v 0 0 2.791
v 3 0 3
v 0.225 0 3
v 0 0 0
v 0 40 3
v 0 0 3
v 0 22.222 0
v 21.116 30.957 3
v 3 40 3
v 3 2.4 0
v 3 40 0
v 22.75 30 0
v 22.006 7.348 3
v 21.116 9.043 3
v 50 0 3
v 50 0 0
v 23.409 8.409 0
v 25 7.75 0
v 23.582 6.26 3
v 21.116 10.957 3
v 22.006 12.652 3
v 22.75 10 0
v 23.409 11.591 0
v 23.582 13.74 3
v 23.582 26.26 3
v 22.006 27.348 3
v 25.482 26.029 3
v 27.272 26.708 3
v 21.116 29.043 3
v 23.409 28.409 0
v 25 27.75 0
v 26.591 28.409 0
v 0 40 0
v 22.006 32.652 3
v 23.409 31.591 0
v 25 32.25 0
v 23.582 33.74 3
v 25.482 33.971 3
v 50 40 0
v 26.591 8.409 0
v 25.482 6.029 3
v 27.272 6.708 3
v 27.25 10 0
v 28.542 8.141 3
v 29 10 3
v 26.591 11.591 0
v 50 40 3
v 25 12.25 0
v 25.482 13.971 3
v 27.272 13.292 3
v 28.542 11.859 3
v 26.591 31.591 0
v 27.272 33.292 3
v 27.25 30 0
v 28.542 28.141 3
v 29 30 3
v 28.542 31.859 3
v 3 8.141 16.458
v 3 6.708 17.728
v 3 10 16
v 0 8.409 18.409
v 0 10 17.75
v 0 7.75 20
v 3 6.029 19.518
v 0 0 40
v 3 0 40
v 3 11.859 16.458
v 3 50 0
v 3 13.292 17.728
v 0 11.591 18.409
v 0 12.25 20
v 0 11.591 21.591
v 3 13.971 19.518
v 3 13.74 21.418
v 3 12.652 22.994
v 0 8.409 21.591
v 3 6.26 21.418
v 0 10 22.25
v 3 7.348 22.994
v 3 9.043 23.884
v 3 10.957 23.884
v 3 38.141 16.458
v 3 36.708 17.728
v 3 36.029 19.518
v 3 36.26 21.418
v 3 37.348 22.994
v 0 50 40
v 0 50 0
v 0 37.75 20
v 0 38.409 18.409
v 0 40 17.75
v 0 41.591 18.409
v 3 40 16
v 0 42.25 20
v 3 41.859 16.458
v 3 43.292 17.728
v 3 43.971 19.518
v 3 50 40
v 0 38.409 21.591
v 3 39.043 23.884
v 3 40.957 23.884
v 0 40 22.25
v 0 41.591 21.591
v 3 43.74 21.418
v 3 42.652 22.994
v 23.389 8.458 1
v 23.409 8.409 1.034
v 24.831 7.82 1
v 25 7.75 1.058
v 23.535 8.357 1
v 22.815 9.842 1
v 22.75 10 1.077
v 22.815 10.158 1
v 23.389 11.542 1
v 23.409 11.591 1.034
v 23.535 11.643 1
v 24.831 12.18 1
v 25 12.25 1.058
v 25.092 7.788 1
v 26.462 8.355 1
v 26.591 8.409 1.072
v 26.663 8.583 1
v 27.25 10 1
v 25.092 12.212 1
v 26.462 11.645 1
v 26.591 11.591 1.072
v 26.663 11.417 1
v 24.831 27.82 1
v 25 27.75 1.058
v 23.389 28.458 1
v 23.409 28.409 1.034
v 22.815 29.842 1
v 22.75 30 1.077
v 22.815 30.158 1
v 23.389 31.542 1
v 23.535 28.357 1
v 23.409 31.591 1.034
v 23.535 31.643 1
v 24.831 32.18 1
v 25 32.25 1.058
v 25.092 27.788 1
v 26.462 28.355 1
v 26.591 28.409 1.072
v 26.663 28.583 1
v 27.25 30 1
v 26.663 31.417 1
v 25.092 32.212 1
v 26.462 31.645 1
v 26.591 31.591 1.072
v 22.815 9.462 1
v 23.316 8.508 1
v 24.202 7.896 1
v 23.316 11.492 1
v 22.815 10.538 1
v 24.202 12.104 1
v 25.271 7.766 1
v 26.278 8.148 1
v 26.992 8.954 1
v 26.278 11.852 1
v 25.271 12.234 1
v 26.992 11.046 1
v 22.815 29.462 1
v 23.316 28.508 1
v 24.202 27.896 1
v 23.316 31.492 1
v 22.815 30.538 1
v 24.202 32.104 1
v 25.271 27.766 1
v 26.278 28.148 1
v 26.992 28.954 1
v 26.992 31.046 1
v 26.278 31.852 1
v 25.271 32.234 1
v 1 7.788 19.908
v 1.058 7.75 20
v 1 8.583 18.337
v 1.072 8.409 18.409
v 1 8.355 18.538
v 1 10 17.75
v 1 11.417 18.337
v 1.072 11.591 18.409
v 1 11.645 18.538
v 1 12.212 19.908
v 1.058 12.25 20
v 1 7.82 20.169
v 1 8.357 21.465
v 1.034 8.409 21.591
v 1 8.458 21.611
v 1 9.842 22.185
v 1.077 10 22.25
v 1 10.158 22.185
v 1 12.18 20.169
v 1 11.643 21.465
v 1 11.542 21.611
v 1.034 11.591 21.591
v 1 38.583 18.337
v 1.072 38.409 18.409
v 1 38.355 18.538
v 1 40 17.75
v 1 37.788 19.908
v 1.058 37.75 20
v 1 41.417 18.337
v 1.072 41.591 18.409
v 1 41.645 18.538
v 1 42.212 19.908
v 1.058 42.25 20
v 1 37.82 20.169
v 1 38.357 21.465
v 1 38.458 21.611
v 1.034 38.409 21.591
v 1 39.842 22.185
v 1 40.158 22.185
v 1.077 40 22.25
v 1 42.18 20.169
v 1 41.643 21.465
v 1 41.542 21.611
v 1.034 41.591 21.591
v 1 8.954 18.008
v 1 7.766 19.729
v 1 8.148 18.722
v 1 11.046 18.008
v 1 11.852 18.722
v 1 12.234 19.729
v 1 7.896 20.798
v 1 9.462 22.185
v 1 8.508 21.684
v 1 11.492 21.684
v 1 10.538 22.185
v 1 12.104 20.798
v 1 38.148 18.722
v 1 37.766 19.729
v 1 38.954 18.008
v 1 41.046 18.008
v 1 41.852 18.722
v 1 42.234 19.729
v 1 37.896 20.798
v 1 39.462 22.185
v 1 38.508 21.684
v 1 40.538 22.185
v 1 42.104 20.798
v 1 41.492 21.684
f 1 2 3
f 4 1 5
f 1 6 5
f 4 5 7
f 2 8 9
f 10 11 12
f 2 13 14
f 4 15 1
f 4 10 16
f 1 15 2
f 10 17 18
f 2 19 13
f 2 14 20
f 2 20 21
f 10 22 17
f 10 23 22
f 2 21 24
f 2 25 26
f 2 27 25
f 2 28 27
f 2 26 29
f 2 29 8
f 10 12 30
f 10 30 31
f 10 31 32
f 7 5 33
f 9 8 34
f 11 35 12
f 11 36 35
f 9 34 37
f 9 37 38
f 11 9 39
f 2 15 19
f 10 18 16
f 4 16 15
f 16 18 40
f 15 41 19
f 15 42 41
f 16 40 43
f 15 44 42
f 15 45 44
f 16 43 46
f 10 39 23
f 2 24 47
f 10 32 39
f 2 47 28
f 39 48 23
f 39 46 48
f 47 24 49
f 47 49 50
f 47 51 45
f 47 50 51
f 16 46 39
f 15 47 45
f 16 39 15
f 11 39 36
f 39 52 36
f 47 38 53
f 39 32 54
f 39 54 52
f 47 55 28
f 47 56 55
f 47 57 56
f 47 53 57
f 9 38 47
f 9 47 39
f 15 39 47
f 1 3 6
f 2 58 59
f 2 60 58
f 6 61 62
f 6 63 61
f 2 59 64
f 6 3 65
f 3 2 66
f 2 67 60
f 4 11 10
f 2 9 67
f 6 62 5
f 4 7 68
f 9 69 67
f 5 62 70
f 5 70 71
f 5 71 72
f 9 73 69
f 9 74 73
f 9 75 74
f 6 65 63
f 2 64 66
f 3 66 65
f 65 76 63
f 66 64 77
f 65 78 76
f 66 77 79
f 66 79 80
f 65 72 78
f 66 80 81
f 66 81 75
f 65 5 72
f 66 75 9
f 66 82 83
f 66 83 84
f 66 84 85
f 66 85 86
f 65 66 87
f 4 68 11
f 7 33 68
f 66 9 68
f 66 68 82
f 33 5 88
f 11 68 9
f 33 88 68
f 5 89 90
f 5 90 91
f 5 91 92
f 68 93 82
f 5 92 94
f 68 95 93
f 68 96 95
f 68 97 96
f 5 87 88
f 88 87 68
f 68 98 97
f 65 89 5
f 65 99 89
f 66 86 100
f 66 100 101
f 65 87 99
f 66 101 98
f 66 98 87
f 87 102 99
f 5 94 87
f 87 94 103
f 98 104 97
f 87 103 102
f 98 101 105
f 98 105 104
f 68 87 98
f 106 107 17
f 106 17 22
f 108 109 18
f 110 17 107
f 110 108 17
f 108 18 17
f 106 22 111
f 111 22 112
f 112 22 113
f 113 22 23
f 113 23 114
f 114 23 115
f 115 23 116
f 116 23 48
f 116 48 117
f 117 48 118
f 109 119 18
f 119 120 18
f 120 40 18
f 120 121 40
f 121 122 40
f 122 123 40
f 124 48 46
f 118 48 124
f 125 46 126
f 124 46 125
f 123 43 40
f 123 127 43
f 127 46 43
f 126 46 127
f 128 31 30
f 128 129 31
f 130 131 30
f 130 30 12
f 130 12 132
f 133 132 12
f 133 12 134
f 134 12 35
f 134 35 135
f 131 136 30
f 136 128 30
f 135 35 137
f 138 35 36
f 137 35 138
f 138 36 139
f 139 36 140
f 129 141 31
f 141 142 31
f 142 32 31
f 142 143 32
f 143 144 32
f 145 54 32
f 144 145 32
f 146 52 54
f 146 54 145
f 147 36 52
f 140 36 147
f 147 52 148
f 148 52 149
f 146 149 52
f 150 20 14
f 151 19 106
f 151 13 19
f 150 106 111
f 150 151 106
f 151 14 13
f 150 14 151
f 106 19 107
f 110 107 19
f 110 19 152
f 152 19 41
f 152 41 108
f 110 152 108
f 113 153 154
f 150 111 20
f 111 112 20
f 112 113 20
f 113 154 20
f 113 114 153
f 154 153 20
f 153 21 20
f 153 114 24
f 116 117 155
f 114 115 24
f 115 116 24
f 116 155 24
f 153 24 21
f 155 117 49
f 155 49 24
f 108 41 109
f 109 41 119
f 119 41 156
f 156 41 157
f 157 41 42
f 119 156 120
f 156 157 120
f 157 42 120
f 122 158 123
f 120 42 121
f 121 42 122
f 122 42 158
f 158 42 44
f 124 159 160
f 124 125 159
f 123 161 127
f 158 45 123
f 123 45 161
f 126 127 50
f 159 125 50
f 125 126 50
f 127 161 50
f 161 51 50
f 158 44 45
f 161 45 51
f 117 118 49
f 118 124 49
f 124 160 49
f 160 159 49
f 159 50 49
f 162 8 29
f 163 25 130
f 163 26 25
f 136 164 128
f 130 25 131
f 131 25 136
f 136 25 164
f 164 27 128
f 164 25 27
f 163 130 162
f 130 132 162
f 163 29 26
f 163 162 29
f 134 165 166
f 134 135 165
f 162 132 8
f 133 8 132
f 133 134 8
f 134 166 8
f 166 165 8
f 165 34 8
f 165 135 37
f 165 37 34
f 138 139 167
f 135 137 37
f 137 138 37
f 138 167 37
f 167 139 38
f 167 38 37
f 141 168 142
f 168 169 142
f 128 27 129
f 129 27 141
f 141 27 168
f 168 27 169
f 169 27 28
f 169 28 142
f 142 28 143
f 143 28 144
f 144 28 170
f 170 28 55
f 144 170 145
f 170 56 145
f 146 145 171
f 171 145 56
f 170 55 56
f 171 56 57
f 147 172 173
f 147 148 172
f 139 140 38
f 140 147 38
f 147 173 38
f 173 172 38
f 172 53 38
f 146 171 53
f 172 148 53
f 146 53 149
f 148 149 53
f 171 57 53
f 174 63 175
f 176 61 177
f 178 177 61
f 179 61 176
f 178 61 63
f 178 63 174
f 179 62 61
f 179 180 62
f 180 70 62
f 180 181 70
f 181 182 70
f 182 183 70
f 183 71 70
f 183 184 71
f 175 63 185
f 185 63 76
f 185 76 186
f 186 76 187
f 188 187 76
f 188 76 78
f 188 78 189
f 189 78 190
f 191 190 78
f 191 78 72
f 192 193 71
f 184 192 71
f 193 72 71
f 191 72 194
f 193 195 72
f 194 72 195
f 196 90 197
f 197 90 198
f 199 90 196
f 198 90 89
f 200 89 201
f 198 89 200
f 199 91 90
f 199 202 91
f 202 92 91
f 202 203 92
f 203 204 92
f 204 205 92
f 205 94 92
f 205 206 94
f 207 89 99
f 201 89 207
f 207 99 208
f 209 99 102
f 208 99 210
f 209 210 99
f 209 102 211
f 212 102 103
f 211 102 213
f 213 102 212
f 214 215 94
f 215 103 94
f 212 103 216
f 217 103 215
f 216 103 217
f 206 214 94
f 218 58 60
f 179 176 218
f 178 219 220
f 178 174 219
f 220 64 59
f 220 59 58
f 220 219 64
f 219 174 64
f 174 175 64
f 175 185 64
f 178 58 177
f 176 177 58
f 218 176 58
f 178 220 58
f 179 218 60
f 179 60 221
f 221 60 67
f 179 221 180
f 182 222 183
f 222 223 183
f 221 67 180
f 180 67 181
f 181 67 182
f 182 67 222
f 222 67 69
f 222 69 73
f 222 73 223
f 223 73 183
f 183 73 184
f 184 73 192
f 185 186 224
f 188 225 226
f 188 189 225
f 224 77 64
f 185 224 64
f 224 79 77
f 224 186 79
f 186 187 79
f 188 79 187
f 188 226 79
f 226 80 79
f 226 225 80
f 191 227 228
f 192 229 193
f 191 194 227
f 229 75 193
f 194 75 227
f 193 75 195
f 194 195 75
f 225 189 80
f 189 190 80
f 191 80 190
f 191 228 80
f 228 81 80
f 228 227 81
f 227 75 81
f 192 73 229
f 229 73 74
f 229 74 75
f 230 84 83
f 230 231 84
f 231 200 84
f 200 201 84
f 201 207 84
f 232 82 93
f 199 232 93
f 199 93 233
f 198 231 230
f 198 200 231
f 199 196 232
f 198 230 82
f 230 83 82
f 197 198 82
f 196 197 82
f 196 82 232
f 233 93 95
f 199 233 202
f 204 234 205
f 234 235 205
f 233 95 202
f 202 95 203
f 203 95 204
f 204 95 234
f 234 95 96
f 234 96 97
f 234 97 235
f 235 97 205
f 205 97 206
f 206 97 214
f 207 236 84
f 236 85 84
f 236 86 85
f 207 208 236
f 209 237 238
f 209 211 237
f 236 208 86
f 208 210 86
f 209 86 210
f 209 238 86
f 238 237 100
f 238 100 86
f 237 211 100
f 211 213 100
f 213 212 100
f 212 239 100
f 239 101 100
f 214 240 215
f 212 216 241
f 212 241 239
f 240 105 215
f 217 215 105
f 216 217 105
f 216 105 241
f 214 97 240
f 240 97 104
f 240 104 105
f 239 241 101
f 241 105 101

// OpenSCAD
// 修正 OpenSCAD: L字金具 (水平板 XY 平面, 垂直板 YZ 平面)、内側コーナー原点
// 内側コーナーを原点 (0,0,0) に配置
difference() {
  union() {
    // 水平板: 50 × 40 × 3 (X × Y × Z)
    cube([50, 40, 3], center=false);

    // 垂直板: 3 × 50 × 40 (X × Y × Z)
    cube([3, 50, 40], center=false);
  }

  // 水平板の貫通穴 (Z 軸方向)
  translate([25, 10, 0])
    cylinder(h=3, r=2.25, center=false);
  translate([25, 30, 0])
    cylinder(h=3, r=2.25, center=false);

  // 水平穴の皿座面 (外側へ向ける: 上面 z=3 側)
  translate([25, 10, 1])
    cylinder(h=2, r1=2.25, r2=4, center=false);
  translate([25, 30, 1])
    cylinder(h=2, r1=2.25, r2=4, center=false);

  // 垂直板の貫通穴 (X 方向に貫通)
  // 厚さ 3 で X 軸方向に長さ 3 の穴をあける
  translate([0, 10, 20])
    rotate([0, 90, 0])
    cylinder(h=3, r=2.25, center=false);
  translate([0, 40, 20])
    rotate([0, 90, 0])
    cylinder(h=3, r=2.25, center=false);

  // 垂直板の皿穴の皿座面 (外側は X = 3 面)
  translate([1, 10, 20])
    rotate([0, 90, 0])
    cylinder(h=2, r1=2.25, r2=4, center=false);
  translate([1, 40, 20])
    rotate([0, 90, 0])
    cylinder(h=2, r1=2.25, r2=4, center=false);
}
